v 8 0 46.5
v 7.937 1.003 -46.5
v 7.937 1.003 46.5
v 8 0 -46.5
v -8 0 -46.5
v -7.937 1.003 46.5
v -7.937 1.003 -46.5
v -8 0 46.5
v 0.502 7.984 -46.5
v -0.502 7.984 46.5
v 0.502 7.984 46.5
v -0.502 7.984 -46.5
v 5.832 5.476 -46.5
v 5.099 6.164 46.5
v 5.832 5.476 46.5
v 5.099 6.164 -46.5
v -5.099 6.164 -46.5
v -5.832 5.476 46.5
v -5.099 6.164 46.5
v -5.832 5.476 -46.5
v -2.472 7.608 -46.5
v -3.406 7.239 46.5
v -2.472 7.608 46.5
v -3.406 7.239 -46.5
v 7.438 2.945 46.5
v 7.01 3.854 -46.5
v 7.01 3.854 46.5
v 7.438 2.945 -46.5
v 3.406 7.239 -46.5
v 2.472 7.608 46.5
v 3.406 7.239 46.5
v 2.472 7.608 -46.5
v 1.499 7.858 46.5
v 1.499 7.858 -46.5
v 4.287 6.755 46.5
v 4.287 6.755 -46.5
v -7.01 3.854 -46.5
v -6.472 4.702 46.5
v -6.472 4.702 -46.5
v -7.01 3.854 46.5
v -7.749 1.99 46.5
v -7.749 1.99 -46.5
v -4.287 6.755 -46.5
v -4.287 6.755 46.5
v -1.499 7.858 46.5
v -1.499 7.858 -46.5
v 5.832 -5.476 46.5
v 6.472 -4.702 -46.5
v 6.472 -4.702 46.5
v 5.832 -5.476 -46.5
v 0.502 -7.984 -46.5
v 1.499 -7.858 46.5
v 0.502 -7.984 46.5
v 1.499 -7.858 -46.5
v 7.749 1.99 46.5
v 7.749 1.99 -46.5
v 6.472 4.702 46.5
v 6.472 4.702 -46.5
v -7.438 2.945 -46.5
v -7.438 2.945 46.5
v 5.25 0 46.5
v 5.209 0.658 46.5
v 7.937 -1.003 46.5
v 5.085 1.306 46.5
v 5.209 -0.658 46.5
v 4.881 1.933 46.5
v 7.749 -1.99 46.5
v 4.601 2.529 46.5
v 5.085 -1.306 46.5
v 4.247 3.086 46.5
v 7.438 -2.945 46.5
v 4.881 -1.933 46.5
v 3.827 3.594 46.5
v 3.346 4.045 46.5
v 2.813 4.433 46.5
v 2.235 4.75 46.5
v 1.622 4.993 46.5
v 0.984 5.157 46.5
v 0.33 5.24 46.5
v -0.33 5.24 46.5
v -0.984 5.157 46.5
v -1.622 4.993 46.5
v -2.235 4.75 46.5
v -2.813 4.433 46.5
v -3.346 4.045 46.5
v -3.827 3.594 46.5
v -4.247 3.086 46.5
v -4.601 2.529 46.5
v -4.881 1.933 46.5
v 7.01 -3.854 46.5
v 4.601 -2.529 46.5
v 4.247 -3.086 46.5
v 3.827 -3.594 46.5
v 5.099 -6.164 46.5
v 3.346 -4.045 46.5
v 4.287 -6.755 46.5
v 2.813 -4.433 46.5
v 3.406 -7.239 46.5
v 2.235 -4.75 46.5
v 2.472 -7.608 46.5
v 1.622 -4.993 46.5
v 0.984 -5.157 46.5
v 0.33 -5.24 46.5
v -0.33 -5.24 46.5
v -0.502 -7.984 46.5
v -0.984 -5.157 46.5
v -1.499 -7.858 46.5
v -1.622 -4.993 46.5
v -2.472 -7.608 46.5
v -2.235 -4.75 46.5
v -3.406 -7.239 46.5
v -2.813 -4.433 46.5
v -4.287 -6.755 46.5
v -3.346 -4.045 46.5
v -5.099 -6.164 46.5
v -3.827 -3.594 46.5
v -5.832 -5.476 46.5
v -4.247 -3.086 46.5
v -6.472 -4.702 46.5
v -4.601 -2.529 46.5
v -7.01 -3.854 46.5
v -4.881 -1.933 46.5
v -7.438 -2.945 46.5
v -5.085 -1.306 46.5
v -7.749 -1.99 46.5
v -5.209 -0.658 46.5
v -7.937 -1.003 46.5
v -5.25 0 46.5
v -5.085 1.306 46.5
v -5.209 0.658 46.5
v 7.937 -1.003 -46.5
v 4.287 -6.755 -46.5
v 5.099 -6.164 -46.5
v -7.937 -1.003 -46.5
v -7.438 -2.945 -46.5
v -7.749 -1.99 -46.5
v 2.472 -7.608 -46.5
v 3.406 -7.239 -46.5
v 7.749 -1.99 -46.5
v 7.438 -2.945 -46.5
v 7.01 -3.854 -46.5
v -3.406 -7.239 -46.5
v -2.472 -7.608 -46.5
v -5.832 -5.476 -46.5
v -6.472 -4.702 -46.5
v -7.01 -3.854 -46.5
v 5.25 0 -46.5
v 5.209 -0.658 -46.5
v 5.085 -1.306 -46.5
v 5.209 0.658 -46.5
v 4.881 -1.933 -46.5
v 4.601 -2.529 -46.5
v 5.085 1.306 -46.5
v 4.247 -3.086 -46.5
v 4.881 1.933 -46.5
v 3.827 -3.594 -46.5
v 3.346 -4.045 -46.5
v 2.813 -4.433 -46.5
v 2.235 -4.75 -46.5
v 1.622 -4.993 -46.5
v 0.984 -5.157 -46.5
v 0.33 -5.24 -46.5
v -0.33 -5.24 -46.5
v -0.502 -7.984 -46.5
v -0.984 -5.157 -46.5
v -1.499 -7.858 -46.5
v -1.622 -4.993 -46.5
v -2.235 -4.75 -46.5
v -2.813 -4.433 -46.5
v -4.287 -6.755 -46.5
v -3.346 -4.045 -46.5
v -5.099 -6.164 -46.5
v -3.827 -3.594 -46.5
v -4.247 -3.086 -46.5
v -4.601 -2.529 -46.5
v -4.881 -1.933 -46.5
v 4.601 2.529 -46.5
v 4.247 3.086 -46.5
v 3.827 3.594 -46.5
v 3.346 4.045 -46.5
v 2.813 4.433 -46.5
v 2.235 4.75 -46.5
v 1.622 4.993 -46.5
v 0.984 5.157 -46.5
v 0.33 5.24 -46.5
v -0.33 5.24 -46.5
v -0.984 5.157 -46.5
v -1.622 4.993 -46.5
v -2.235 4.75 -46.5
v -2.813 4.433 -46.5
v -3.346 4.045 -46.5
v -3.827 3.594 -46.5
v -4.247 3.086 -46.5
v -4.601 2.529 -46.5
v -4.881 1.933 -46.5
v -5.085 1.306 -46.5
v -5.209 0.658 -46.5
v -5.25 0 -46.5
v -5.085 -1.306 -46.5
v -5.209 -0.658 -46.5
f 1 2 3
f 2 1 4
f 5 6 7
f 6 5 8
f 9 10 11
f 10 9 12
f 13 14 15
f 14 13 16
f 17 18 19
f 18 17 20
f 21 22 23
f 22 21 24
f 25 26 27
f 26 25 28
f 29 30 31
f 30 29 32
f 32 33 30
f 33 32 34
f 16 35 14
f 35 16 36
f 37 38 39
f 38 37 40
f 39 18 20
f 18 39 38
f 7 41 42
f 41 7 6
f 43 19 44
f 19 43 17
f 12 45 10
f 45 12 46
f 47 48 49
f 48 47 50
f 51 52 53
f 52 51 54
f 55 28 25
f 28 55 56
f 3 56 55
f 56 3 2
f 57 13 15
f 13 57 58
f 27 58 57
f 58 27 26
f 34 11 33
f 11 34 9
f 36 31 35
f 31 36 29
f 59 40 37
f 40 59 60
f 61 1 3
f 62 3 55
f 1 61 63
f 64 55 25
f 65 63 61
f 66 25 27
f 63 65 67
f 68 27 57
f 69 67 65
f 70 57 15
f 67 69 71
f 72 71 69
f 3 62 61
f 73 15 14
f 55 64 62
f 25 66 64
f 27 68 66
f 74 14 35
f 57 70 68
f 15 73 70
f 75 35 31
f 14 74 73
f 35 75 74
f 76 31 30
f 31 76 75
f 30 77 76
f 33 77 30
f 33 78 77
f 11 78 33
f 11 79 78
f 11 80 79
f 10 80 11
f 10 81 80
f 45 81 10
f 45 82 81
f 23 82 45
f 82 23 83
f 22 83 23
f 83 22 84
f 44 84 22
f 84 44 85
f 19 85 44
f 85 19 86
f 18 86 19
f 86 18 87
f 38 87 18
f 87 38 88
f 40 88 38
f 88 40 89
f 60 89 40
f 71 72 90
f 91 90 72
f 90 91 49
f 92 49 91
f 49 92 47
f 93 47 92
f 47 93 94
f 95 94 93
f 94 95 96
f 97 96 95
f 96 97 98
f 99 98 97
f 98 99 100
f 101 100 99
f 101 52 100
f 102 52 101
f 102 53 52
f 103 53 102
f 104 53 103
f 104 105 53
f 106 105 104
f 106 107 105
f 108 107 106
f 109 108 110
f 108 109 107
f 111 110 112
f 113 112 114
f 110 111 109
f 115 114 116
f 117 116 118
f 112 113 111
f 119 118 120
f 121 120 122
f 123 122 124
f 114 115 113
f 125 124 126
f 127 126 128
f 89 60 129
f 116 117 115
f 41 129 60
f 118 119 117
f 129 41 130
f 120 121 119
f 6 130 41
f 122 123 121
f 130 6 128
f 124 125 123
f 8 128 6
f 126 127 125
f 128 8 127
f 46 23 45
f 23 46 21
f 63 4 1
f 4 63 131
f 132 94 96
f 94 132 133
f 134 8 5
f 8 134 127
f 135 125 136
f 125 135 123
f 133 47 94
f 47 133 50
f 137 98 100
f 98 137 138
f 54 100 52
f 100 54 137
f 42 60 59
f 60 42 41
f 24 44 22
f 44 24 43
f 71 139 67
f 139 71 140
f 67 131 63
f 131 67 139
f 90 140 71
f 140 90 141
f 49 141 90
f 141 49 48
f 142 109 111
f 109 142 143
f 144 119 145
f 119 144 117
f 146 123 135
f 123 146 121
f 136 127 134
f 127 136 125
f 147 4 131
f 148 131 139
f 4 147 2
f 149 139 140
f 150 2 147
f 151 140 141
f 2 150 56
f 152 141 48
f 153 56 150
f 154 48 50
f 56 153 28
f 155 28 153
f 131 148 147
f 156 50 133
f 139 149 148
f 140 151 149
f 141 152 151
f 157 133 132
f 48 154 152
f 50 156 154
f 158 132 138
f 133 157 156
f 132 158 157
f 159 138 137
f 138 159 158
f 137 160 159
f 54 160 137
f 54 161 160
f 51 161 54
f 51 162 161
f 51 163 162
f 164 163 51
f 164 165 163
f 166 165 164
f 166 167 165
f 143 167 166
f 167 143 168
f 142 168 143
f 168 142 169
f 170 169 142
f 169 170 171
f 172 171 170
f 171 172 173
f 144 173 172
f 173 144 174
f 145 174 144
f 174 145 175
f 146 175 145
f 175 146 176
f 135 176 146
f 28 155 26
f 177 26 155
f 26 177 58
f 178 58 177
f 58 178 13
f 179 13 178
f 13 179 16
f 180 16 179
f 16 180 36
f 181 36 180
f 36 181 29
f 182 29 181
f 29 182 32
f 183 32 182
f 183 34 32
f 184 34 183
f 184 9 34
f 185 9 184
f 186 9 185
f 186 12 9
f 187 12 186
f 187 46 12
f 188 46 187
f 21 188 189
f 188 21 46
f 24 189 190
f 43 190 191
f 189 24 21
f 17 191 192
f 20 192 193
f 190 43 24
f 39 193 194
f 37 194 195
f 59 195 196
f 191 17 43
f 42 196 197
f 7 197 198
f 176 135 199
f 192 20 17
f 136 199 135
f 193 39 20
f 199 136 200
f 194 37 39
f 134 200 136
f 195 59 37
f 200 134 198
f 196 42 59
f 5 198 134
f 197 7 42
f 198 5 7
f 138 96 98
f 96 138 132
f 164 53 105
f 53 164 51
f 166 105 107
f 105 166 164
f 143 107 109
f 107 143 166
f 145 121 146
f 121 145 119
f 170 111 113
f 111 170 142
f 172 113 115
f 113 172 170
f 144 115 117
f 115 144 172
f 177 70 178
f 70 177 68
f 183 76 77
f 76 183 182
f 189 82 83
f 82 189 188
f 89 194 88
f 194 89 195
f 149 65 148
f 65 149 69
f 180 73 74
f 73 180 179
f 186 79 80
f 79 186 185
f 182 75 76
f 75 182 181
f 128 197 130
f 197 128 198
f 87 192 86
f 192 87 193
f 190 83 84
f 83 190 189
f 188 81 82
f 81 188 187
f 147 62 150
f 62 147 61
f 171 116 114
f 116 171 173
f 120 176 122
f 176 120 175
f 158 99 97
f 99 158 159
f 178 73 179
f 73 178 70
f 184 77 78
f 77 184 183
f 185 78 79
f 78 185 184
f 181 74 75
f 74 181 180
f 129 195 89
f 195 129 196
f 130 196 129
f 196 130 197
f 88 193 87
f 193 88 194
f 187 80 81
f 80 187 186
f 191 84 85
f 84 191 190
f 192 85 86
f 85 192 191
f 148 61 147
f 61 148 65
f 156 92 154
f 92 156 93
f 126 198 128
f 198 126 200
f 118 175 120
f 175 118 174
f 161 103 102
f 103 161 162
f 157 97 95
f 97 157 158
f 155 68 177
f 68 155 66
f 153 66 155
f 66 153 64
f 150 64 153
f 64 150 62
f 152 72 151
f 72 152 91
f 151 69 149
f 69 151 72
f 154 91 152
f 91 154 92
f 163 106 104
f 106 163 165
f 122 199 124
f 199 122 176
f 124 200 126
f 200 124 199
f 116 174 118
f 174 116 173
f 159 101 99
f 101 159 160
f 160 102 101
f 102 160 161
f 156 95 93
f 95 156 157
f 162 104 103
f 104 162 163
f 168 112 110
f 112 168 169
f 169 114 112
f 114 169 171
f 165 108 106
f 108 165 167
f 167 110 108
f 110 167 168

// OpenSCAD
$fn = 50;


difference() {
	union() {
		translate(v = [0, 0, -46.5000000000]) {
			cylinder(h = 93, r = 8.0000000000);
		}
	}
	union() {
		translate(v = [0, 0, -100.0000000000]) {
			cylinder(h = 200, r = 5.2500000000);
		}
	}
}
